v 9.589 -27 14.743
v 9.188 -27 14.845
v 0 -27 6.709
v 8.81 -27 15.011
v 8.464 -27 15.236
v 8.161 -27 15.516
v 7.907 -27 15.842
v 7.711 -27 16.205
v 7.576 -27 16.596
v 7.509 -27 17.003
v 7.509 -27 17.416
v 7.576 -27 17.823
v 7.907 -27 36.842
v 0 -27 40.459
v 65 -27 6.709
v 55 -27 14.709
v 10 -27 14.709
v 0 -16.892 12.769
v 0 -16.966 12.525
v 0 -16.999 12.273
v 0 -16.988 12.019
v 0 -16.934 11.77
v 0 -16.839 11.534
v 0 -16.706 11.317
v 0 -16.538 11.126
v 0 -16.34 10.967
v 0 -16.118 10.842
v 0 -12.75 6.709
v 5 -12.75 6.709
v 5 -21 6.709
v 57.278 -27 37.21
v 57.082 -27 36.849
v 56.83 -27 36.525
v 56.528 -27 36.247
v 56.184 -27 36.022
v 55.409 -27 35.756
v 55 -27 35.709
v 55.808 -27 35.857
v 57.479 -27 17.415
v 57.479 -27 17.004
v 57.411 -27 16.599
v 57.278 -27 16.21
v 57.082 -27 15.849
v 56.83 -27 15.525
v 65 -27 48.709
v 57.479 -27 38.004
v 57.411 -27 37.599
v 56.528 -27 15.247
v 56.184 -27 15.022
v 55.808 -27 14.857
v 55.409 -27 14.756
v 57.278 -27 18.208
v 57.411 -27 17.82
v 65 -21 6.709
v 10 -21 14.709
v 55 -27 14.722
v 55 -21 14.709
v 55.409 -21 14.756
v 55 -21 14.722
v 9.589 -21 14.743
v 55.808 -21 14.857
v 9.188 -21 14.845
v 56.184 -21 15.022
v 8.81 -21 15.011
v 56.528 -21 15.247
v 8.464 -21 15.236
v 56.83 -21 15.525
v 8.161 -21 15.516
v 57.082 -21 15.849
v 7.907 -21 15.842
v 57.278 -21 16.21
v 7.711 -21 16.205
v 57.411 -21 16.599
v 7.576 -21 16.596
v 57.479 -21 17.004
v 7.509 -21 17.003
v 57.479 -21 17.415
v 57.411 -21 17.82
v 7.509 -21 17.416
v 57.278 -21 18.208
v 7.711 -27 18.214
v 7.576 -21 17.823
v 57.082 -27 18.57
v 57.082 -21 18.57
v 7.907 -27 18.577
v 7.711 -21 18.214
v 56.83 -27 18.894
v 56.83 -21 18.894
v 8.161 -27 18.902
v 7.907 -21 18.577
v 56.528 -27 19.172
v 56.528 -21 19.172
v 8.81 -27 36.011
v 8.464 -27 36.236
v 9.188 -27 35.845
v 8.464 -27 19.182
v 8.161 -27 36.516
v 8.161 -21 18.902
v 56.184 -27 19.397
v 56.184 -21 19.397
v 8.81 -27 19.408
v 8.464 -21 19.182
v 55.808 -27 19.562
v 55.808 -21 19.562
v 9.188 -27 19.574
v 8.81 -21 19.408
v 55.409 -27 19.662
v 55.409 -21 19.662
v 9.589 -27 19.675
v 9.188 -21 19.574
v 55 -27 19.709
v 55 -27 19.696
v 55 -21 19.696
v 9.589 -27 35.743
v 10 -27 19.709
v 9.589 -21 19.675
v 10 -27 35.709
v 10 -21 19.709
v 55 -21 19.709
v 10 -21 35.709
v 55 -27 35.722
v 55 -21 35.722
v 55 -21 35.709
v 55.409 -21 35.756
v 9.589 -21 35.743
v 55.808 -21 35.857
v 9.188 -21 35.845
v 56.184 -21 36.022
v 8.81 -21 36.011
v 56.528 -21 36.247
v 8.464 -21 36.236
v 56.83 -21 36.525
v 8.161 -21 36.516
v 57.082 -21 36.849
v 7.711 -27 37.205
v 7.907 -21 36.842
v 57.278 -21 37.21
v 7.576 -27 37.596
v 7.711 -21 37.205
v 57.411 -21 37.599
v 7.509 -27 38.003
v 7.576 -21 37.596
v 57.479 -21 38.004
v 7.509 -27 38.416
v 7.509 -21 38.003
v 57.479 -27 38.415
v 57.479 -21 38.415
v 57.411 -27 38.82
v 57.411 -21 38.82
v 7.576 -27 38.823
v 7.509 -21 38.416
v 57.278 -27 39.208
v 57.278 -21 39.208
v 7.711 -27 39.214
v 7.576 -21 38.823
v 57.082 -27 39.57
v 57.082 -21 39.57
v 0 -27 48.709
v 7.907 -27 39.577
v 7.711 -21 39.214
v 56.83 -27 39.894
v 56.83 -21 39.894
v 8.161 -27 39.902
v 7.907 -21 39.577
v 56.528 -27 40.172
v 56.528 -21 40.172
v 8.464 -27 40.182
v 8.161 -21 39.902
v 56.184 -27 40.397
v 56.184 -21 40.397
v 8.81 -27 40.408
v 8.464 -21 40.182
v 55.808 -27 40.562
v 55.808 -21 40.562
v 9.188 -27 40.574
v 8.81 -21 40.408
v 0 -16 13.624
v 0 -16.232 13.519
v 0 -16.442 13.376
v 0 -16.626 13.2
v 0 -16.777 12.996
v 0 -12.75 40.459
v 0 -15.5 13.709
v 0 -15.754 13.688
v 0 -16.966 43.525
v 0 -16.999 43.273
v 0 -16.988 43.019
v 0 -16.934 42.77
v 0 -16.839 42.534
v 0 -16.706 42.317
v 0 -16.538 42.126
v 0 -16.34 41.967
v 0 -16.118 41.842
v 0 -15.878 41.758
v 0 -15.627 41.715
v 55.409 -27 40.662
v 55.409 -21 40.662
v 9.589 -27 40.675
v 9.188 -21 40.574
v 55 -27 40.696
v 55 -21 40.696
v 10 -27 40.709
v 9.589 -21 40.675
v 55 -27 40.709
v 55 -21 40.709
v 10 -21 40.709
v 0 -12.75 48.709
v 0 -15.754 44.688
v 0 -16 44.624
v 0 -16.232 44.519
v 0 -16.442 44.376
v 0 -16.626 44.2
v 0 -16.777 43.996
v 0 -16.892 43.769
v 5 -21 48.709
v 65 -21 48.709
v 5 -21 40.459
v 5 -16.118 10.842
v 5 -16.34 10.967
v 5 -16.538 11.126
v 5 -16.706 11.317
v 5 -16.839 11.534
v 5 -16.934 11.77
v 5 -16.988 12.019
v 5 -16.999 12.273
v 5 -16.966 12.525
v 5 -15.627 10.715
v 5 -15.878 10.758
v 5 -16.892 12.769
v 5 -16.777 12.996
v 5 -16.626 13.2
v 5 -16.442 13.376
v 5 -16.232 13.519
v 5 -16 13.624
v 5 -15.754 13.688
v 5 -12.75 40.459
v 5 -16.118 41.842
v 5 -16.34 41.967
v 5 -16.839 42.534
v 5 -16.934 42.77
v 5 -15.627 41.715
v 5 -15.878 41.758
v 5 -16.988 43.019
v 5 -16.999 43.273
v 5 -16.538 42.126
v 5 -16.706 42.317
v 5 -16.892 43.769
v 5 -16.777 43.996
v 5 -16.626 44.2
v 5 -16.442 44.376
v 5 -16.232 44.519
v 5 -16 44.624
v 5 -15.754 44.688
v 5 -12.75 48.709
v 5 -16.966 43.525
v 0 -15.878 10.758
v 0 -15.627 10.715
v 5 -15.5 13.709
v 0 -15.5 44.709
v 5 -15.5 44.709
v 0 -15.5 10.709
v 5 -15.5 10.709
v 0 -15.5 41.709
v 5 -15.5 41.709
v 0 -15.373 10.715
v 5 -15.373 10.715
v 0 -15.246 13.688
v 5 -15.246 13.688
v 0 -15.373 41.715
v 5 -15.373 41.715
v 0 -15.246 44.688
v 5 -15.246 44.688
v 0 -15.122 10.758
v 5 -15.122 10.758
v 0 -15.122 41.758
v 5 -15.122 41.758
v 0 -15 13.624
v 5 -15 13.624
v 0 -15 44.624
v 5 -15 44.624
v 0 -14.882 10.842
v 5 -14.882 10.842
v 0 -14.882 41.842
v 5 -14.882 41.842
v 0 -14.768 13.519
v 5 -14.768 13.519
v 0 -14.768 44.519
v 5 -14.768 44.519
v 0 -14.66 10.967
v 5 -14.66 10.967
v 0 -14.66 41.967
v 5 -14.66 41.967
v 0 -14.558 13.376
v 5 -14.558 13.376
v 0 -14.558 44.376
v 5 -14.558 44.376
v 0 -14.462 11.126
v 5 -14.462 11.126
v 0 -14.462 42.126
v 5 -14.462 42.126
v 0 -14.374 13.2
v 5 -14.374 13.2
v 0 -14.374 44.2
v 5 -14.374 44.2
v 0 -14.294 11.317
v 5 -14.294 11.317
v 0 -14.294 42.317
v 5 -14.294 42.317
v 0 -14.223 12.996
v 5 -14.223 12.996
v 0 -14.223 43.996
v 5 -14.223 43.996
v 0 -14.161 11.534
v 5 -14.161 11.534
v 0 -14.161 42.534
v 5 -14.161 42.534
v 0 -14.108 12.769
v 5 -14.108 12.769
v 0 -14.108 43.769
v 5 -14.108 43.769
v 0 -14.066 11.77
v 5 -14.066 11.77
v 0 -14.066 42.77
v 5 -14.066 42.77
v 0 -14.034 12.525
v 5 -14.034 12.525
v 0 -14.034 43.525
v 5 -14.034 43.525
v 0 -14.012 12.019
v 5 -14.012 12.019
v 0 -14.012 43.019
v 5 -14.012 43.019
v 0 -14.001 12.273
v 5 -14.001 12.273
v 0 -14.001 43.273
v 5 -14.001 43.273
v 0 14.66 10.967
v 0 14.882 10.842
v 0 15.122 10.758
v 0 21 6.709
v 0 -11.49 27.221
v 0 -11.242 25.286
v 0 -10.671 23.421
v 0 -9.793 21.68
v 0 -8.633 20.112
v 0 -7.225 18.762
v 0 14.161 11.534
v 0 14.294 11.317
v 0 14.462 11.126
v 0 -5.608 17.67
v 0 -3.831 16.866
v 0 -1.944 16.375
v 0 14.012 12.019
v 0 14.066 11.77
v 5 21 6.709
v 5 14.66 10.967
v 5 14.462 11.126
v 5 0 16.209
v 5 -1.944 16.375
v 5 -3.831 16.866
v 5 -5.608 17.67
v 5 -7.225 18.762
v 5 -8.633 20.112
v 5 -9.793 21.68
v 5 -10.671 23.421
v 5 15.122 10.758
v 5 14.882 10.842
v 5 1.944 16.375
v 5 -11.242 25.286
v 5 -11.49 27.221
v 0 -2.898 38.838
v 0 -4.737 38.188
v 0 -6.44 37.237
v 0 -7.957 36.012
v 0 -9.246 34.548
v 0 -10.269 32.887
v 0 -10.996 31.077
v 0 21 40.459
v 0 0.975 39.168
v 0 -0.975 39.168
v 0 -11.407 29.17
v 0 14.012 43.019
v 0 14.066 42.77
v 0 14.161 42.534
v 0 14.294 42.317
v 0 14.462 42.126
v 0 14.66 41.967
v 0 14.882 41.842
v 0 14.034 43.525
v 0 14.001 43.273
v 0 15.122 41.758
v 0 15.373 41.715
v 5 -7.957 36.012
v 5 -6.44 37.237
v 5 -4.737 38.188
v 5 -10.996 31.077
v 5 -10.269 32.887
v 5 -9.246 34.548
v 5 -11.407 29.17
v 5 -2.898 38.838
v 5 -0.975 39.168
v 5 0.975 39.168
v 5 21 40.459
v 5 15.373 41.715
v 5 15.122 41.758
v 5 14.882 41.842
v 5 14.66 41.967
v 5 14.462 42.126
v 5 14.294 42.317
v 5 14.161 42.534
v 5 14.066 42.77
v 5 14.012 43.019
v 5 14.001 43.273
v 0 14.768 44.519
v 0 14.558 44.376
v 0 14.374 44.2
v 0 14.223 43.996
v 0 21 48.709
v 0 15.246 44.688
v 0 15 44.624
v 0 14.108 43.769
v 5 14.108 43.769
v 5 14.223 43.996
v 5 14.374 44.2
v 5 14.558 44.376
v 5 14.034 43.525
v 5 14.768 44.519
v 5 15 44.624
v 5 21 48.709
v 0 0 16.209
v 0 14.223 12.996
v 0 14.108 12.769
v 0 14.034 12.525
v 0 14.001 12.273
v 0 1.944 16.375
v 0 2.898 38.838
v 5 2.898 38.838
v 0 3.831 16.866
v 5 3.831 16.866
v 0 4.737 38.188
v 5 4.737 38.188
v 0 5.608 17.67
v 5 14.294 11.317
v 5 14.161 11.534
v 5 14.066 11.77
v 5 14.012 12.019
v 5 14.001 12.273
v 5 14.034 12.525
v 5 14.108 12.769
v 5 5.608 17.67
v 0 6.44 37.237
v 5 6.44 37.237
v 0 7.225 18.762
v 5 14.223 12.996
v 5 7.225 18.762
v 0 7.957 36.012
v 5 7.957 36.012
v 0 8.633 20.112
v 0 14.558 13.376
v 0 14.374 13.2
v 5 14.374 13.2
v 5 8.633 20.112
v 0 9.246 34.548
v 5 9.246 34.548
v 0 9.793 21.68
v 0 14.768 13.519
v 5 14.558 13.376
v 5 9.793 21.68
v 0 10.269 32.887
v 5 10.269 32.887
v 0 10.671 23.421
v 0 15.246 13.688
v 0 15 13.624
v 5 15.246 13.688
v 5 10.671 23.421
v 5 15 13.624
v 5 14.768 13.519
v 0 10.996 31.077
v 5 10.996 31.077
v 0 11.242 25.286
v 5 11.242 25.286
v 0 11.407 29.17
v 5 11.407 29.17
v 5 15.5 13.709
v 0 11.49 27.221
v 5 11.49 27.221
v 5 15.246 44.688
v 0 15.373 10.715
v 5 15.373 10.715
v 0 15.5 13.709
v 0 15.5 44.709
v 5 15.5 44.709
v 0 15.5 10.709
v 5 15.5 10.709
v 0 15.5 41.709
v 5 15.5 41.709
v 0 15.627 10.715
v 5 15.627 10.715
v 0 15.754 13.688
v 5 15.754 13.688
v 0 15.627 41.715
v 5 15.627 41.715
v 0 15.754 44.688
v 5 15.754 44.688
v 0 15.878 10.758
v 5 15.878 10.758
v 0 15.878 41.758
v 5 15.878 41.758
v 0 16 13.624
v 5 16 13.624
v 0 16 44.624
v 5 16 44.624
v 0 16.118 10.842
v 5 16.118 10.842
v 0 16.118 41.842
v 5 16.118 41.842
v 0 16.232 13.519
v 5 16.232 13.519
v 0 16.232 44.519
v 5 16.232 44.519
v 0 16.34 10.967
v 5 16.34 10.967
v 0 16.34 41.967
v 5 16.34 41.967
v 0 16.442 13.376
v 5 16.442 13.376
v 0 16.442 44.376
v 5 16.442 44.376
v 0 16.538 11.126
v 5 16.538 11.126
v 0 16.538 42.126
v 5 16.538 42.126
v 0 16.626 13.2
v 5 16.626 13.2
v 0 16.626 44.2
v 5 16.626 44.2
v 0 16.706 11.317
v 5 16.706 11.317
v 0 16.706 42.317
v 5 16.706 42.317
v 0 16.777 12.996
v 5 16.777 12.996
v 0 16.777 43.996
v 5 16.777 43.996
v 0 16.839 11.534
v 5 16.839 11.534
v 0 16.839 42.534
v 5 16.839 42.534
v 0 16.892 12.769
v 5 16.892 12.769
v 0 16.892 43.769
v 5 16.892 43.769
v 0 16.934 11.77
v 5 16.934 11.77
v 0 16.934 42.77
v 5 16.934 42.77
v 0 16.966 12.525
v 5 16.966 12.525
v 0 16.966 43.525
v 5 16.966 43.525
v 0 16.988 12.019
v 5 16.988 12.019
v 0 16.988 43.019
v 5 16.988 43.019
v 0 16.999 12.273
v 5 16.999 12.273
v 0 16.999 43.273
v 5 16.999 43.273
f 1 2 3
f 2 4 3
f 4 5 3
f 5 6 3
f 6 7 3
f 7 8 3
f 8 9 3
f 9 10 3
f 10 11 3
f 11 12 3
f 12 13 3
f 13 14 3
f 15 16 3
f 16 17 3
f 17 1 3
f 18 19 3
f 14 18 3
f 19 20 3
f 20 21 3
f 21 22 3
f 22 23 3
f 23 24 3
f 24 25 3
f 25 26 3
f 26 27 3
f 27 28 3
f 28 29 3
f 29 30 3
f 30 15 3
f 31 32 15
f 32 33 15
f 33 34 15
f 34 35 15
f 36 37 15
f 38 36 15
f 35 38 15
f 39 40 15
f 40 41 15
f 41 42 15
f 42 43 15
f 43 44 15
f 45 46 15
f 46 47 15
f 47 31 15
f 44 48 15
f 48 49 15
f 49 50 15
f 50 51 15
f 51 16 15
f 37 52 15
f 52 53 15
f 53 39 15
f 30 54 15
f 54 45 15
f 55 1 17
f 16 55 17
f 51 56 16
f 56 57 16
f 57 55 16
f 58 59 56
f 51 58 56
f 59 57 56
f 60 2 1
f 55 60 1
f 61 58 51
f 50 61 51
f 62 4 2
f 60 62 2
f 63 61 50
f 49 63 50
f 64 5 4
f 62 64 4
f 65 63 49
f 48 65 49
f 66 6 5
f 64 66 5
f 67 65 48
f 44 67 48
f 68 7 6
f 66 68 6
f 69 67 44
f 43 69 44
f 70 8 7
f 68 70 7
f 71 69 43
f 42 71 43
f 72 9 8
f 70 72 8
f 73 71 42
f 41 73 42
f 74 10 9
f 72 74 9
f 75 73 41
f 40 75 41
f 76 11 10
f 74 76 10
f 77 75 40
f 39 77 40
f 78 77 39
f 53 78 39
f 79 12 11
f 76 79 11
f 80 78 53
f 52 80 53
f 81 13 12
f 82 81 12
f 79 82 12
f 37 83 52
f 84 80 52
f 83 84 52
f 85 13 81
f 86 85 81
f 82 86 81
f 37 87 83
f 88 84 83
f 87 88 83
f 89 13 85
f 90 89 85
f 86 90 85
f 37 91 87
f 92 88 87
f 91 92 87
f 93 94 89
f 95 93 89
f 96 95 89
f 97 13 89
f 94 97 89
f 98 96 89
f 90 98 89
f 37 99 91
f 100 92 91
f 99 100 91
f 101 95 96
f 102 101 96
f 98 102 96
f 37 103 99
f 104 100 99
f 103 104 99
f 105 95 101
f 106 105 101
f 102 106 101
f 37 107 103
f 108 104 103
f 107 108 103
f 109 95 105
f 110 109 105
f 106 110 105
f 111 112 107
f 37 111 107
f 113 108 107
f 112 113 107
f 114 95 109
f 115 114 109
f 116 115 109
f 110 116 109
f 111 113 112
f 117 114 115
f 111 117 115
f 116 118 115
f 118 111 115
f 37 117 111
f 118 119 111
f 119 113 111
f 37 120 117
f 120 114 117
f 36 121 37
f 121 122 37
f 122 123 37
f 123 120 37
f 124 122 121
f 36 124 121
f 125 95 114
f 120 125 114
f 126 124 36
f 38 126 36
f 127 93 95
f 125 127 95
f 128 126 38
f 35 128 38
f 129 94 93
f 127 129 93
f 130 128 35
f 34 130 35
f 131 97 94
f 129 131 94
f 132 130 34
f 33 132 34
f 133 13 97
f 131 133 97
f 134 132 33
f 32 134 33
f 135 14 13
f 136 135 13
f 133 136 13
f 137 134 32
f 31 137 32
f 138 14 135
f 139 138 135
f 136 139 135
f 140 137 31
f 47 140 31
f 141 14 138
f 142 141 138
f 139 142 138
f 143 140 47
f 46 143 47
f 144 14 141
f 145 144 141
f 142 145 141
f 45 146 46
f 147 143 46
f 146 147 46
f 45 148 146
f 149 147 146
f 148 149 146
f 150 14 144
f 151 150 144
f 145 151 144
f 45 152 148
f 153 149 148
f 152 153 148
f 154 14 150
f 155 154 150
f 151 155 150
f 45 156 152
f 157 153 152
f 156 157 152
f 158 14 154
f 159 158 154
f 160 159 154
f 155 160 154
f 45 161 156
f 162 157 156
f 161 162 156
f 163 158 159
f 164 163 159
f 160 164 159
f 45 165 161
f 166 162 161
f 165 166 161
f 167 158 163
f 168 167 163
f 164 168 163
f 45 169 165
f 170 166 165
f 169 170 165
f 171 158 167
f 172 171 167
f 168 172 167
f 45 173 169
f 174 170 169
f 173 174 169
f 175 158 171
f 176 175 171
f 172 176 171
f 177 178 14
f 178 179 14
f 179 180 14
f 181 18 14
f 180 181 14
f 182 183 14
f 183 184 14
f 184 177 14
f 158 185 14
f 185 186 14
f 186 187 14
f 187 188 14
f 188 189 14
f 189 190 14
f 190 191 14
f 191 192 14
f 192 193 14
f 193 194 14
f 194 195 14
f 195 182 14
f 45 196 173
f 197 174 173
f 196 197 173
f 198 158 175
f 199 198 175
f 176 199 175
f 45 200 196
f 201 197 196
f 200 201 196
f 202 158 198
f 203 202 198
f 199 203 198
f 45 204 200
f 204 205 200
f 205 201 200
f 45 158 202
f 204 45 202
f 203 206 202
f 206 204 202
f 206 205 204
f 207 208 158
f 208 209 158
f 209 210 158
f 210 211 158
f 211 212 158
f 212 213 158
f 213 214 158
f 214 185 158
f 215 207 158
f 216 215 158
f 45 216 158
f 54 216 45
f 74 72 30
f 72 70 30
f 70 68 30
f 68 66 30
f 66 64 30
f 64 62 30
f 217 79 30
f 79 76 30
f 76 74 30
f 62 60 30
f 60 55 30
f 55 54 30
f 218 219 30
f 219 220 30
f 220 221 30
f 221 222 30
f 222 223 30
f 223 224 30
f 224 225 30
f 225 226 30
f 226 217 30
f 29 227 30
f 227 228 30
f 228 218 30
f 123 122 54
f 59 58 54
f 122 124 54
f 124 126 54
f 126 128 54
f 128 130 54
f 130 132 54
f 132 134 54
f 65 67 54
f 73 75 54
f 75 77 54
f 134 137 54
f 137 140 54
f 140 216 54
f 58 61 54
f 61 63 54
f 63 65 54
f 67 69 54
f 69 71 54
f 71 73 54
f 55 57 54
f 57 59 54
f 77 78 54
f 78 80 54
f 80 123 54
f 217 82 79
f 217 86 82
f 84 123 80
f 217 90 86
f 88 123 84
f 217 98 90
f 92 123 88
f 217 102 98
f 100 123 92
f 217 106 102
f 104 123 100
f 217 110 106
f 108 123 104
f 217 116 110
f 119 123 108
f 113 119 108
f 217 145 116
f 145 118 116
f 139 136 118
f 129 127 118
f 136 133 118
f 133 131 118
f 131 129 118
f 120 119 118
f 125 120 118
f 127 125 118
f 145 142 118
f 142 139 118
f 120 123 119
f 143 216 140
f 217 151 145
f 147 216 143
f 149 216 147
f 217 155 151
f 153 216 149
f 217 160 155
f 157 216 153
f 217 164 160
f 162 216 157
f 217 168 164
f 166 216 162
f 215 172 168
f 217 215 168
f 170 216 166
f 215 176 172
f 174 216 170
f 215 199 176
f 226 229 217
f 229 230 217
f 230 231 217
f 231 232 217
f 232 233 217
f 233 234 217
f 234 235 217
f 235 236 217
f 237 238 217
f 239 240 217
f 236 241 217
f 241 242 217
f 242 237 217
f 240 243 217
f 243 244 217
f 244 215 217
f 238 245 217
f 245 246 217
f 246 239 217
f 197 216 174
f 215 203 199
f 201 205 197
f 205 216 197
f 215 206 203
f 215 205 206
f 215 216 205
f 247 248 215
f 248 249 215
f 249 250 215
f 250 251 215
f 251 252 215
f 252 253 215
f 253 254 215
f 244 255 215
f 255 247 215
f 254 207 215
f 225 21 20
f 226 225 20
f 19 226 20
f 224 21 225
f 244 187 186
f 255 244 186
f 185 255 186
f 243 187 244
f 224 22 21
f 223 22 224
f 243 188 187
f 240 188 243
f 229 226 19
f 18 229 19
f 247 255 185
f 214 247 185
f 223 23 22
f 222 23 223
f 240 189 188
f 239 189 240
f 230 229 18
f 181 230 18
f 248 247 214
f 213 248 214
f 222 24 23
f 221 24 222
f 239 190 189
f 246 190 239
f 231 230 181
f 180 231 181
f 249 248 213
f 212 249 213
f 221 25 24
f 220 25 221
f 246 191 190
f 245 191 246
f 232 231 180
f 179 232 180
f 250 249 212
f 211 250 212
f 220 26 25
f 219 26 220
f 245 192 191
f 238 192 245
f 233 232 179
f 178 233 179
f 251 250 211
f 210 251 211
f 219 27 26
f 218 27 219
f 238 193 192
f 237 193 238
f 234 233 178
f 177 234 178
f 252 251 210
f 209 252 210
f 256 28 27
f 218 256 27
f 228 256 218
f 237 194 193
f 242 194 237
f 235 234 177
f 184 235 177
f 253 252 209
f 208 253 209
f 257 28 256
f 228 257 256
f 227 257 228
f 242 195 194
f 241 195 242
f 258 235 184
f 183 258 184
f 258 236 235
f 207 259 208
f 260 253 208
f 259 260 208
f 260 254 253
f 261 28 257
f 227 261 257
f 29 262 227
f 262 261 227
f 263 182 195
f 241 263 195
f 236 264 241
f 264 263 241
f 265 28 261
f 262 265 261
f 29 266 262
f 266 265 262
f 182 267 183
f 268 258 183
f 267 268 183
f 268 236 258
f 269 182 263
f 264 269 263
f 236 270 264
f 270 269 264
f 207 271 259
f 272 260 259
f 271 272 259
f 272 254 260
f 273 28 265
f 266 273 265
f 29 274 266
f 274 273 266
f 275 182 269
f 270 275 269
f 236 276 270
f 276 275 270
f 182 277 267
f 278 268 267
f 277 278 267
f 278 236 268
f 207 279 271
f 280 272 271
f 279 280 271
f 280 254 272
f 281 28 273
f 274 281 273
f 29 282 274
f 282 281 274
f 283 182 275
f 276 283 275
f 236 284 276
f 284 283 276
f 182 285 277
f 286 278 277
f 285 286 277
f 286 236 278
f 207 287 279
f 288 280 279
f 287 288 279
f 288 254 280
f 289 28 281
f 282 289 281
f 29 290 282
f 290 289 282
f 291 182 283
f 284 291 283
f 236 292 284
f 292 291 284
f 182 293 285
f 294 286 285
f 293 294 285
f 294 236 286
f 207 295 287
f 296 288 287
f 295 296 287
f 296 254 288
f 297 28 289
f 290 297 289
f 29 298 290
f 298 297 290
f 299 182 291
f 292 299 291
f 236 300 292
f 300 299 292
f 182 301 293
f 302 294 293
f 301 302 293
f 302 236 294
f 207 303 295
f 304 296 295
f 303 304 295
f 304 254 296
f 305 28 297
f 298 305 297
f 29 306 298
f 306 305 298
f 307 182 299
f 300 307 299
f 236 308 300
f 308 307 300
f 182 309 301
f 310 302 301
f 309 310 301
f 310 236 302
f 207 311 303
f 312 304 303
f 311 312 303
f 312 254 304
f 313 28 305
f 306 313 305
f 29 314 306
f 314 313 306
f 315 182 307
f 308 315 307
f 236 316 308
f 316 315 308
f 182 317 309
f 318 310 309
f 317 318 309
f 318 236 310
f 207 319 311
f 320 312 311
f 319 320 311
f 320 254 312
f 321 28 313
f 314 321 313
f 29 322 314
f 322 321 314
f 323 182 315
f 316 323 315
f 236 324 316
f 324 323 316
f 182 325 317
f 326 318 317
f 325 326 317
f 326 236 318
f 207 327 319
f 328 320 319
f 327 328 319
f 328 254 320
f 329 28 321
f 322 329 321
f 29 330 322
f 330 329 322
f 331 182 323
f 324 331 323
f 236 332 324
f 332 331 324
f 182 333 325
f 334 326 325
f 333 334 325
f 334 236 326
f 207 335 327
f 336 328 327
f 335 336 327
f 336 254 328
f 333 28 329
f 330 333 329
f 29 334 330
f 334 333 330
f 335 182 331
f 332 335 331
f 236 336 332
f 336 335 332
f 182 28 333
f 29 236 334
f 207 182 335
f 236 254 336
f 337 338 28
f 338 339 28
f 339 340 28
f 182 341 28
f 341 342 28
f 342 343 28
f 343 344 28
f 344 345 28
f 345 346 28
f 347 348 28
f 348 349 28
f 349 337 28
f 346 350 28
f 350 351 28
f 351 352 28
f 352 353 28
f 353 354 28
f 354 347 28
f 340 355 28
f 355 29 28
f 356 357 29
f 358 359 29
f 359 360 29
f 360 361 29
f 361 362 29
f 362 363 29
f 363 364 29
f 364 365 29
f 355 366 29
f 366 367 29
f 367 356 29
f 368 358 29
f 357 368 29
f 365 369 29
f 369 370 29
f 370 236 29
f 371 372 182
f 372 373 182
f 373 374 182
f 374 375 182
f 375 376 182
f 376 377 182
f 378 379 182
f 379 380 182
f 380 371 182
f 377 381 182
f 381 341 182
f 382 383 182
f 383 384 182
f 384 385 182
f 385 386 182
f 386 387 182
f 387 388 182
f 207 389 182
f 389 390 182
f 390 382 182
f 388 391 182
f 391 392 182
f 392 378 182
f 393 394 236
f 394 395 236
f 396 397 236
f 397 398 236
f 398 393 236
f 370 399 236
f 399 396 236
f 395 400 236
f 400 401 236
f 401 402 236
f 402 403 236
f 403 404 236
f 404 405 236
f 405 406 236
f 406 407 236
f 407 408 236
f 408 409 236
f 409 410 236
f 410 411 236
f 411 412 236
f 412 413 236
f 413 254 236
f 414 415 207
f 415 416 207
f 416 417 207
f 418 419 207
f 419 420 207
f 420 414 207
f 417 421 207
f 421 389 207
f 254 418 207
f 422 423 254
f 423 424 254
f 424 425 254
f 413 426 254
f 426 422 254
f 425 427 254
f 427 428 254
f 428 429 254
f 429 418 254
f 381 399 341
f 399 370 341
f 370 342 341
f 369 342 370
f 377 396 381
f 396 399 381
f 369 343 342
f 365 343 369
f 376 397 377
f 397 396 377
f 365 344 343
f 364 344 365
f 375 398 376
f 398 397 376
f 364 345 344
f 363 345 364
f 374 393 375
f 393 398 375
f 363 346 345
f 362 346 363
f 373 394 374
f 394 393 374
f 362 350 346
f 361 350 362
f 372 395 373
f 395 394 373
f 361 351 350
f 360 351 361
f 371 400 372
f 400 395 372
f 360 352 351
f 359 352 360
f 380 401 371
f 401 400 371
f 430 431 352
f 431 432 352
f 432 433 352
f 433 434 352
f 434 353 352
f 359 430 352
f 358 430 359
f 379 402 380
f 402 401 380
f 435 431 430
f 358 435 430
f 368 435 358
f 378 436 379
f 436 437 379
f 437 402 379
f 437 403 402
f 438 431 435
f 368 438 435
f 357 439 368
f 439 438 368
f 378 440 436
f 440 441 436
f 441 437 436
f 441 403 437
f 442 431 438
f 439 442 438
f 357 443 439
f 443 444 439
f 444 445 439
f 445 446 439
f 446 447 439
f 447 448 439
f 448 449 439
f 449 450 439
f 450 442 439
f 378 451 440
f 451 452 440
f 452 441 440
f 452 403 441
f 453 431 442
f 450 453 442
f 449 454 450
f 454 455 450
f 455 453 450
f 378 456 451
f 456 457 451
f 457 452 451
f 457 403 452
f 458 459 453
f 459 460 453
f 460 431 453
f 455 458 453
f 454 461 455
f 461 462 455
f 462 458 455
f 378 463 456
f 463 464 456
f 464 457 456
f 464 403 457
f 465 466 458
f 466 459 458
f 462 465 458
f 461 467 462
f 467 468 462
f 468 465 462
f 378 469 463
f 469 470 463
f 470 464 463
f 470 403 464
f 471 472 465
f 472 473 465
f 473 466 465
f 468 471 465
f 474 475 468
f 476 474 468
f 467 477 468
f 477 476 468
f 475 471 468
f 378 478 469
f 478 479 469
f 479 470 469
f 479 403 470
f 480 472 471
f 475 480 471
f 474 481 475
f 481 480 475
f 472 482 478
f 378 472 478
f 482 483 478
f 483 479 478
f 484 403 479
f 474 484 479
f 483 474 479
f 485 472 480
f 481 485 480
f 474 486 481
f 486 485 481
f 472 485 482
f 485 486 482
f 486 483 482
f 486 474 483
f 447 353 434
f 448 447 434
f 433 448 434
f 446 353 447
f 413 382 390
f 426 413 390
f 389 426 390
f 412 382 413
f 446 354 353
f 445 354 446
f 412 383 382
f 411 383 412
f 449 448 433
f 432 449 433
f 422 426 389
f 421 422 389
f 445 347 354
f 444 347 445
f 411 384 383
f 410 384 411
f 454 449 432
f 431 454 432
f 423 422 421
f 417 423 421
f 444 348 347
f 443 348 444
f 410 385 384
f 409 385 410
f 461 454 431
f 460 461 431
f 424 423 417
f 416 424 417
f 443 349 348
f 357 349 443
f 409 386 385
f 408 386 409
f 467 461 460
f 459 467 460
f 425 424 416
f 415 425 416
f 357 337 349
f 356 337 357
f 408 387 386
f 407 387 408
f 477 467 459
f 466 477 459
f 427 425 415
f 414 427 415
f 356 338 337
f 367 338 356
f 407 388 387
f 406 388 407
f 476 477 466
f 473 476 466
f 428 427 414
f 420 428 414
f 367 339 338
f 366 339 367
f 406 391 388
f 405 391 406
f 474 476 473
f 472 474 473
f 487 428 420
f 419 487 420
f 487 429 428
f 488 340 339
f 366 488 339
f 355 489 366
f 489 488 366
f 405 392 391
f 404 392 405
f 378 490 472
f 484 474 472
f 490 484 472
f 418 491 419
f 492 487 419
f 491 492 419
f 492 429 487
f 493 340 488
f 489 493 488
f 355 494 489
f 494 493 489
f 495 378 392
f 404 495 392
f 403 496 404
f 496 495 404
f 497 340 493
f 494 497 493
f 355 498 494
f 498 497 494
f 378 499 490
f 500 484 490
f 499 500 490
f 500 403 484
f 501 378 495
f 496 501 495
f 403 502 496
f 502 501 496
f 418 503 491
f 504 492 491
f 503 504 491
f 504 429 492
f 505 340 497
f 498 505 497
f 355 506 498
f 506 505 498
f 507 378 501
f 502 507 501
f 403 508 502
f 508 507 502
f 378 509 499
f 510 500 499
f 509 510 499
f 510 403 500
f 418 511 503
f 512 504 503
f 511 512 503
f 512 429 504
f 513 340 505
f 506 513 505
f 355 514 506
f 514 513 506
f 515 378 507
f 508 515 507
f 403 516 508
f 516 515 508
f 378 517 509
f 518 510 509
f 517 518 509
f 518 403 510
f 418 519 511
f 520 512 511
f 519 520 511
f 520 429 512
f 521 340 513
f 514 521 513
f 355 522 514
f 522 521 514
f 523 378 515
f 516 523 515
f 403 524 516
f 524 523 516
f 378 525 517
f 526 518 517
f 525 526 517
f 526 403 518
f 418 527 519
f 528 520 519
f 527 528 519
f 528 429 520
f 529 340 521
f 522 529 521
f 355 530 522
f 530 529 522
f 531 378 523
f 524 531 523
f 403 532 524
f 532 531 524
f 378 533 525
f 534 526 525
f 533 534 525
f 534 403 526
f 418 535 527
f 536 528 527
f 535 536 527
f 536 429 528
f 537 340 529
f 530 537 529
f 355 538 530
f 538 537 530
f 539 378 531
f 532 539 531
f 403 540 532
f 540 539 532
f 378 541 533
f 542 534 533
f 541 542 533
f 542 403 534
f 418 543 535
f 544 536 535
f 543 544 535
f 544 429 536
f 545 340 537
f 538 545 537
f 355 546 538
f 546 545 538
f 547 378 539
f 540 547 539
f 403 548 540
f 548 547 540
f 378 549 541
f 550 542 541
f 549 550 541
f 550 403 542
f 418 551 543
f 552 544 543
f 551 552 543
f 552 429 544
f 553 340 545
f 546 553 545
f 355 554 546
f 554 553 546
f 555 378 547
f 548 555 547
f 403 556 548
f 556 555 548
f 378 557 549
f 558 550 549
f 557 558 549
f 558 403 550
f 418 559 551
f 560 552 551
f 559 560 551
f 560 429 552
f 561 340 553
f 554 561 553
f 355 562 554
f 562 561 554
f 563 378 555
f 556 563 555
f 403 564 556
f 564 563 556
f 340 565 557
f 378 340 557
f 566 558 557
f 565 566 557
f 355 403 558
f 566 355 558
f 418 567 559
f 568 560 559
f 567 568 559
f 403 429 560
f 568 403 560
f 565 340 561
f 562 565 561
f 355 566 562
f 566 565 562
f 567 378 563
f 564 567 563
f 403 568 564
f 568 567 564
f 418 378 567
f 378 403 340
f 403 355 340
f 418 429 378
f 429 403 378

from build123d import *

# Parameters (mm, degrees)
SKETCH_1_W          = 42
SKETCH_1_H          = 42
SKETCH_1_R          = 1.5
EXTRUDE_1_DEPTH     = 5
SKETCH_2_W          = 42
SKETCH_2_H          = 6
EXTRUDE_2_DEPTH     = 65
CUT_EXTRUDE_2_DEPTH = 65
SKETCH_4_R          = 11.5
CUT_EXTRUDE_3_DEPTH = 10


with BuildPart() as part:
    # 草图1 → 凸台-拉伸1 (new body)
    with BuildSketch(Plane(origin=(0, 0, 0), x_dir=(0, 0, -1), z_dir=(1, 0, 0))):
        with Locations((-27.709265176, 0)):
            Rectangle(SKETCH_1_W, SKETCH_1_H)
        with Locations((-12.209265176, 15.5)):
            Circle(SKETCH_1_R, mode=Mode.SUBTRACT)
        with Locations((-43.209265176, 15.5)):
            Circle(SKETCH_1_R, mode=Mode.SUBTRACT)
        with Locations((-12.209265176, -15.5)):
            Circle(SKETCH_1_R, mode=Mode.SUBTRACT)
        with Locations((-43.209265176, -15.5)):
            Circle(SKETCH_1_R, mode=Mode.SUBTRACT)
    extrude(amount=EXTRUDE_1_DEPTH)

    # 草图2 → 凸台-拉伸2 (add)
    with BuildSketch(Plane.ZY):
        with Locations((27.709265176, -24)):
            Rectangle(SKETCH_2_W, SKETCH_2_H)
    extrude(amount=-EXTRUDE_2_DEPTH)

    # 草图3 → 切除-拉伸2 (cut)
    with BuildSketch(Plane(origin=(0, -27, 0), x_dir=(-1, 0, 0), z_dir=(0, -1, 0))):
        with BuildLine():
            ThreePointArc((-55, -35.722195546), (-57.48706963, -38.209265176), (-55, -40.696334806))
            Line((-55, -40.696334806), (-55, -35.722195546))
        make_face()
        with BuildLine():
            Line((-55, -35.722195546), (-55, -40.696334806))
            ThreePointArc((-55, -40.696334806), (-53.241376199, -39.967888976), (-52.51293037, -38.209265176))
            ThreePointArc((-52.51293037, -38.209265176), (-53.241376199, -36.450641375), (-55, -35.722195546))
        make_face()
        with BuildLine():
            Line((-55, -40.709265176), (-10, -40.709265176))
            ThreePointArc((-10, -40.709265176), (-12.5, -38.209265176), (-10, -35.709265176))
            Line((-10, -35.709265176), (-55, -35.709265176))
            Line((-55, -35.709265176), (-55, -35.722195546))
            ThreePointArc((-55, -35.722195546), (-53.241376199, -36.450641375), (-52.51293037, -38.209265176))
            ThreePointArc((-52.51293037, -38.209265176), (-53.241376199, -39.967888976), (-55, -40.696334806))
            Line((-55, -40.696334806), (-55, -40.709265176))
        make_face()
        with BuildLine():
            ThreePointArc((-10, -35.709265176), (-12.5, -38.209265176), (-10, -40.709265176))
            Line((-10, -40.709265176), (-10, -35.709265176))
        make_face()
        with BuildLine():
            Line((-10, -35.709265176), (-10, -40.709265176))
            ThreePointArc((-10, -40.709265176), (-8.232233047, -39.977032129), (-7.5, -38.209265176))
            ThreePointArc((-7.5, -38.209265176), (-8.232233047, -36.441498223), (-10, -35.709265176))
        make_face()
        with BuildLine():
            ThreePointArc((-10, -14.709265176), (-12.5, -17.209265176), (-10, -19.709265176))
            Line((-10, -19.709265176), (-10, -14.709265176))
        make_face()
        with BuildLine():
            Line((-10, -14.709265176), (-10, -19.709265176))
            ThreePointArc((-10, -19.709265176), (-8.232233047, -18.977032129), (-7.5, -17.209265176))
            ThreePointArc((-7.5, -17.209265176), (-8.232233047, -15.441498223), (-10, -14.709265176))
        make_face()
        with BuildLine():
            Line((-55, -19.709265176), (-10, -19.709265176))
            ThreePointArc((-10, -19.709265176), (-12.5, -17.209265176), (-10, -14.709265176))
            Line((-10, -14.709265176), (-55, -14.709265176))
            Line((-55, -14.709265176), (-55, -14.722195546))
            ThreePointArc((-55, -14.722195546), (-53.241376199, -15.450641375), (-52.51293037, -17.209265176))
            ThreePointArc((-52.51293037, -17.209265176), (-53.241376199, -18.967888976), (-55, -19.696334806))
            Line((-55, -19.696334806), (-55, -19.709265176))
        make_face()
        with BuildLine():
            ThreePointArc((-55, -14.722195546), (-57.48706963, -17.209265176), (-55, -19.696334806))
            Line((-55, -19.696334806), (-55, -14.722195546))
        make_face()
        with BuildLine():
            Line((-55, -14.722195546), (-55, -19.696334806))
            ThreePointArc((-55, -19.696334806), (-53.241376199, -18.967888976), (-52.51293037, -17.209265176))
            ThreePointArc((-52.51293037, -17.209265176), (-53.241376199, -15.450641375), (-55, -14.722195546))
        make_face()
    extrude(amount=-CUT_EXTRUDE_2_DEPTH, mode=Mode.SUBTRACT)

    # 草图4 → 切除-拉伸3 (cut)
    with BuildSketch(Plane(origin=(5, 0, 0), x_dir=(0, 0, -1), z_dir=(1, 0, 0))):
        with Locations((-27.709265176, 0)):
            Circle(SKETCH_4_R)
    extrude(amount=-CUT_EXTRUDE_3_DEPTH, mode=Mode.SUBTRACT)


solid = part.part
